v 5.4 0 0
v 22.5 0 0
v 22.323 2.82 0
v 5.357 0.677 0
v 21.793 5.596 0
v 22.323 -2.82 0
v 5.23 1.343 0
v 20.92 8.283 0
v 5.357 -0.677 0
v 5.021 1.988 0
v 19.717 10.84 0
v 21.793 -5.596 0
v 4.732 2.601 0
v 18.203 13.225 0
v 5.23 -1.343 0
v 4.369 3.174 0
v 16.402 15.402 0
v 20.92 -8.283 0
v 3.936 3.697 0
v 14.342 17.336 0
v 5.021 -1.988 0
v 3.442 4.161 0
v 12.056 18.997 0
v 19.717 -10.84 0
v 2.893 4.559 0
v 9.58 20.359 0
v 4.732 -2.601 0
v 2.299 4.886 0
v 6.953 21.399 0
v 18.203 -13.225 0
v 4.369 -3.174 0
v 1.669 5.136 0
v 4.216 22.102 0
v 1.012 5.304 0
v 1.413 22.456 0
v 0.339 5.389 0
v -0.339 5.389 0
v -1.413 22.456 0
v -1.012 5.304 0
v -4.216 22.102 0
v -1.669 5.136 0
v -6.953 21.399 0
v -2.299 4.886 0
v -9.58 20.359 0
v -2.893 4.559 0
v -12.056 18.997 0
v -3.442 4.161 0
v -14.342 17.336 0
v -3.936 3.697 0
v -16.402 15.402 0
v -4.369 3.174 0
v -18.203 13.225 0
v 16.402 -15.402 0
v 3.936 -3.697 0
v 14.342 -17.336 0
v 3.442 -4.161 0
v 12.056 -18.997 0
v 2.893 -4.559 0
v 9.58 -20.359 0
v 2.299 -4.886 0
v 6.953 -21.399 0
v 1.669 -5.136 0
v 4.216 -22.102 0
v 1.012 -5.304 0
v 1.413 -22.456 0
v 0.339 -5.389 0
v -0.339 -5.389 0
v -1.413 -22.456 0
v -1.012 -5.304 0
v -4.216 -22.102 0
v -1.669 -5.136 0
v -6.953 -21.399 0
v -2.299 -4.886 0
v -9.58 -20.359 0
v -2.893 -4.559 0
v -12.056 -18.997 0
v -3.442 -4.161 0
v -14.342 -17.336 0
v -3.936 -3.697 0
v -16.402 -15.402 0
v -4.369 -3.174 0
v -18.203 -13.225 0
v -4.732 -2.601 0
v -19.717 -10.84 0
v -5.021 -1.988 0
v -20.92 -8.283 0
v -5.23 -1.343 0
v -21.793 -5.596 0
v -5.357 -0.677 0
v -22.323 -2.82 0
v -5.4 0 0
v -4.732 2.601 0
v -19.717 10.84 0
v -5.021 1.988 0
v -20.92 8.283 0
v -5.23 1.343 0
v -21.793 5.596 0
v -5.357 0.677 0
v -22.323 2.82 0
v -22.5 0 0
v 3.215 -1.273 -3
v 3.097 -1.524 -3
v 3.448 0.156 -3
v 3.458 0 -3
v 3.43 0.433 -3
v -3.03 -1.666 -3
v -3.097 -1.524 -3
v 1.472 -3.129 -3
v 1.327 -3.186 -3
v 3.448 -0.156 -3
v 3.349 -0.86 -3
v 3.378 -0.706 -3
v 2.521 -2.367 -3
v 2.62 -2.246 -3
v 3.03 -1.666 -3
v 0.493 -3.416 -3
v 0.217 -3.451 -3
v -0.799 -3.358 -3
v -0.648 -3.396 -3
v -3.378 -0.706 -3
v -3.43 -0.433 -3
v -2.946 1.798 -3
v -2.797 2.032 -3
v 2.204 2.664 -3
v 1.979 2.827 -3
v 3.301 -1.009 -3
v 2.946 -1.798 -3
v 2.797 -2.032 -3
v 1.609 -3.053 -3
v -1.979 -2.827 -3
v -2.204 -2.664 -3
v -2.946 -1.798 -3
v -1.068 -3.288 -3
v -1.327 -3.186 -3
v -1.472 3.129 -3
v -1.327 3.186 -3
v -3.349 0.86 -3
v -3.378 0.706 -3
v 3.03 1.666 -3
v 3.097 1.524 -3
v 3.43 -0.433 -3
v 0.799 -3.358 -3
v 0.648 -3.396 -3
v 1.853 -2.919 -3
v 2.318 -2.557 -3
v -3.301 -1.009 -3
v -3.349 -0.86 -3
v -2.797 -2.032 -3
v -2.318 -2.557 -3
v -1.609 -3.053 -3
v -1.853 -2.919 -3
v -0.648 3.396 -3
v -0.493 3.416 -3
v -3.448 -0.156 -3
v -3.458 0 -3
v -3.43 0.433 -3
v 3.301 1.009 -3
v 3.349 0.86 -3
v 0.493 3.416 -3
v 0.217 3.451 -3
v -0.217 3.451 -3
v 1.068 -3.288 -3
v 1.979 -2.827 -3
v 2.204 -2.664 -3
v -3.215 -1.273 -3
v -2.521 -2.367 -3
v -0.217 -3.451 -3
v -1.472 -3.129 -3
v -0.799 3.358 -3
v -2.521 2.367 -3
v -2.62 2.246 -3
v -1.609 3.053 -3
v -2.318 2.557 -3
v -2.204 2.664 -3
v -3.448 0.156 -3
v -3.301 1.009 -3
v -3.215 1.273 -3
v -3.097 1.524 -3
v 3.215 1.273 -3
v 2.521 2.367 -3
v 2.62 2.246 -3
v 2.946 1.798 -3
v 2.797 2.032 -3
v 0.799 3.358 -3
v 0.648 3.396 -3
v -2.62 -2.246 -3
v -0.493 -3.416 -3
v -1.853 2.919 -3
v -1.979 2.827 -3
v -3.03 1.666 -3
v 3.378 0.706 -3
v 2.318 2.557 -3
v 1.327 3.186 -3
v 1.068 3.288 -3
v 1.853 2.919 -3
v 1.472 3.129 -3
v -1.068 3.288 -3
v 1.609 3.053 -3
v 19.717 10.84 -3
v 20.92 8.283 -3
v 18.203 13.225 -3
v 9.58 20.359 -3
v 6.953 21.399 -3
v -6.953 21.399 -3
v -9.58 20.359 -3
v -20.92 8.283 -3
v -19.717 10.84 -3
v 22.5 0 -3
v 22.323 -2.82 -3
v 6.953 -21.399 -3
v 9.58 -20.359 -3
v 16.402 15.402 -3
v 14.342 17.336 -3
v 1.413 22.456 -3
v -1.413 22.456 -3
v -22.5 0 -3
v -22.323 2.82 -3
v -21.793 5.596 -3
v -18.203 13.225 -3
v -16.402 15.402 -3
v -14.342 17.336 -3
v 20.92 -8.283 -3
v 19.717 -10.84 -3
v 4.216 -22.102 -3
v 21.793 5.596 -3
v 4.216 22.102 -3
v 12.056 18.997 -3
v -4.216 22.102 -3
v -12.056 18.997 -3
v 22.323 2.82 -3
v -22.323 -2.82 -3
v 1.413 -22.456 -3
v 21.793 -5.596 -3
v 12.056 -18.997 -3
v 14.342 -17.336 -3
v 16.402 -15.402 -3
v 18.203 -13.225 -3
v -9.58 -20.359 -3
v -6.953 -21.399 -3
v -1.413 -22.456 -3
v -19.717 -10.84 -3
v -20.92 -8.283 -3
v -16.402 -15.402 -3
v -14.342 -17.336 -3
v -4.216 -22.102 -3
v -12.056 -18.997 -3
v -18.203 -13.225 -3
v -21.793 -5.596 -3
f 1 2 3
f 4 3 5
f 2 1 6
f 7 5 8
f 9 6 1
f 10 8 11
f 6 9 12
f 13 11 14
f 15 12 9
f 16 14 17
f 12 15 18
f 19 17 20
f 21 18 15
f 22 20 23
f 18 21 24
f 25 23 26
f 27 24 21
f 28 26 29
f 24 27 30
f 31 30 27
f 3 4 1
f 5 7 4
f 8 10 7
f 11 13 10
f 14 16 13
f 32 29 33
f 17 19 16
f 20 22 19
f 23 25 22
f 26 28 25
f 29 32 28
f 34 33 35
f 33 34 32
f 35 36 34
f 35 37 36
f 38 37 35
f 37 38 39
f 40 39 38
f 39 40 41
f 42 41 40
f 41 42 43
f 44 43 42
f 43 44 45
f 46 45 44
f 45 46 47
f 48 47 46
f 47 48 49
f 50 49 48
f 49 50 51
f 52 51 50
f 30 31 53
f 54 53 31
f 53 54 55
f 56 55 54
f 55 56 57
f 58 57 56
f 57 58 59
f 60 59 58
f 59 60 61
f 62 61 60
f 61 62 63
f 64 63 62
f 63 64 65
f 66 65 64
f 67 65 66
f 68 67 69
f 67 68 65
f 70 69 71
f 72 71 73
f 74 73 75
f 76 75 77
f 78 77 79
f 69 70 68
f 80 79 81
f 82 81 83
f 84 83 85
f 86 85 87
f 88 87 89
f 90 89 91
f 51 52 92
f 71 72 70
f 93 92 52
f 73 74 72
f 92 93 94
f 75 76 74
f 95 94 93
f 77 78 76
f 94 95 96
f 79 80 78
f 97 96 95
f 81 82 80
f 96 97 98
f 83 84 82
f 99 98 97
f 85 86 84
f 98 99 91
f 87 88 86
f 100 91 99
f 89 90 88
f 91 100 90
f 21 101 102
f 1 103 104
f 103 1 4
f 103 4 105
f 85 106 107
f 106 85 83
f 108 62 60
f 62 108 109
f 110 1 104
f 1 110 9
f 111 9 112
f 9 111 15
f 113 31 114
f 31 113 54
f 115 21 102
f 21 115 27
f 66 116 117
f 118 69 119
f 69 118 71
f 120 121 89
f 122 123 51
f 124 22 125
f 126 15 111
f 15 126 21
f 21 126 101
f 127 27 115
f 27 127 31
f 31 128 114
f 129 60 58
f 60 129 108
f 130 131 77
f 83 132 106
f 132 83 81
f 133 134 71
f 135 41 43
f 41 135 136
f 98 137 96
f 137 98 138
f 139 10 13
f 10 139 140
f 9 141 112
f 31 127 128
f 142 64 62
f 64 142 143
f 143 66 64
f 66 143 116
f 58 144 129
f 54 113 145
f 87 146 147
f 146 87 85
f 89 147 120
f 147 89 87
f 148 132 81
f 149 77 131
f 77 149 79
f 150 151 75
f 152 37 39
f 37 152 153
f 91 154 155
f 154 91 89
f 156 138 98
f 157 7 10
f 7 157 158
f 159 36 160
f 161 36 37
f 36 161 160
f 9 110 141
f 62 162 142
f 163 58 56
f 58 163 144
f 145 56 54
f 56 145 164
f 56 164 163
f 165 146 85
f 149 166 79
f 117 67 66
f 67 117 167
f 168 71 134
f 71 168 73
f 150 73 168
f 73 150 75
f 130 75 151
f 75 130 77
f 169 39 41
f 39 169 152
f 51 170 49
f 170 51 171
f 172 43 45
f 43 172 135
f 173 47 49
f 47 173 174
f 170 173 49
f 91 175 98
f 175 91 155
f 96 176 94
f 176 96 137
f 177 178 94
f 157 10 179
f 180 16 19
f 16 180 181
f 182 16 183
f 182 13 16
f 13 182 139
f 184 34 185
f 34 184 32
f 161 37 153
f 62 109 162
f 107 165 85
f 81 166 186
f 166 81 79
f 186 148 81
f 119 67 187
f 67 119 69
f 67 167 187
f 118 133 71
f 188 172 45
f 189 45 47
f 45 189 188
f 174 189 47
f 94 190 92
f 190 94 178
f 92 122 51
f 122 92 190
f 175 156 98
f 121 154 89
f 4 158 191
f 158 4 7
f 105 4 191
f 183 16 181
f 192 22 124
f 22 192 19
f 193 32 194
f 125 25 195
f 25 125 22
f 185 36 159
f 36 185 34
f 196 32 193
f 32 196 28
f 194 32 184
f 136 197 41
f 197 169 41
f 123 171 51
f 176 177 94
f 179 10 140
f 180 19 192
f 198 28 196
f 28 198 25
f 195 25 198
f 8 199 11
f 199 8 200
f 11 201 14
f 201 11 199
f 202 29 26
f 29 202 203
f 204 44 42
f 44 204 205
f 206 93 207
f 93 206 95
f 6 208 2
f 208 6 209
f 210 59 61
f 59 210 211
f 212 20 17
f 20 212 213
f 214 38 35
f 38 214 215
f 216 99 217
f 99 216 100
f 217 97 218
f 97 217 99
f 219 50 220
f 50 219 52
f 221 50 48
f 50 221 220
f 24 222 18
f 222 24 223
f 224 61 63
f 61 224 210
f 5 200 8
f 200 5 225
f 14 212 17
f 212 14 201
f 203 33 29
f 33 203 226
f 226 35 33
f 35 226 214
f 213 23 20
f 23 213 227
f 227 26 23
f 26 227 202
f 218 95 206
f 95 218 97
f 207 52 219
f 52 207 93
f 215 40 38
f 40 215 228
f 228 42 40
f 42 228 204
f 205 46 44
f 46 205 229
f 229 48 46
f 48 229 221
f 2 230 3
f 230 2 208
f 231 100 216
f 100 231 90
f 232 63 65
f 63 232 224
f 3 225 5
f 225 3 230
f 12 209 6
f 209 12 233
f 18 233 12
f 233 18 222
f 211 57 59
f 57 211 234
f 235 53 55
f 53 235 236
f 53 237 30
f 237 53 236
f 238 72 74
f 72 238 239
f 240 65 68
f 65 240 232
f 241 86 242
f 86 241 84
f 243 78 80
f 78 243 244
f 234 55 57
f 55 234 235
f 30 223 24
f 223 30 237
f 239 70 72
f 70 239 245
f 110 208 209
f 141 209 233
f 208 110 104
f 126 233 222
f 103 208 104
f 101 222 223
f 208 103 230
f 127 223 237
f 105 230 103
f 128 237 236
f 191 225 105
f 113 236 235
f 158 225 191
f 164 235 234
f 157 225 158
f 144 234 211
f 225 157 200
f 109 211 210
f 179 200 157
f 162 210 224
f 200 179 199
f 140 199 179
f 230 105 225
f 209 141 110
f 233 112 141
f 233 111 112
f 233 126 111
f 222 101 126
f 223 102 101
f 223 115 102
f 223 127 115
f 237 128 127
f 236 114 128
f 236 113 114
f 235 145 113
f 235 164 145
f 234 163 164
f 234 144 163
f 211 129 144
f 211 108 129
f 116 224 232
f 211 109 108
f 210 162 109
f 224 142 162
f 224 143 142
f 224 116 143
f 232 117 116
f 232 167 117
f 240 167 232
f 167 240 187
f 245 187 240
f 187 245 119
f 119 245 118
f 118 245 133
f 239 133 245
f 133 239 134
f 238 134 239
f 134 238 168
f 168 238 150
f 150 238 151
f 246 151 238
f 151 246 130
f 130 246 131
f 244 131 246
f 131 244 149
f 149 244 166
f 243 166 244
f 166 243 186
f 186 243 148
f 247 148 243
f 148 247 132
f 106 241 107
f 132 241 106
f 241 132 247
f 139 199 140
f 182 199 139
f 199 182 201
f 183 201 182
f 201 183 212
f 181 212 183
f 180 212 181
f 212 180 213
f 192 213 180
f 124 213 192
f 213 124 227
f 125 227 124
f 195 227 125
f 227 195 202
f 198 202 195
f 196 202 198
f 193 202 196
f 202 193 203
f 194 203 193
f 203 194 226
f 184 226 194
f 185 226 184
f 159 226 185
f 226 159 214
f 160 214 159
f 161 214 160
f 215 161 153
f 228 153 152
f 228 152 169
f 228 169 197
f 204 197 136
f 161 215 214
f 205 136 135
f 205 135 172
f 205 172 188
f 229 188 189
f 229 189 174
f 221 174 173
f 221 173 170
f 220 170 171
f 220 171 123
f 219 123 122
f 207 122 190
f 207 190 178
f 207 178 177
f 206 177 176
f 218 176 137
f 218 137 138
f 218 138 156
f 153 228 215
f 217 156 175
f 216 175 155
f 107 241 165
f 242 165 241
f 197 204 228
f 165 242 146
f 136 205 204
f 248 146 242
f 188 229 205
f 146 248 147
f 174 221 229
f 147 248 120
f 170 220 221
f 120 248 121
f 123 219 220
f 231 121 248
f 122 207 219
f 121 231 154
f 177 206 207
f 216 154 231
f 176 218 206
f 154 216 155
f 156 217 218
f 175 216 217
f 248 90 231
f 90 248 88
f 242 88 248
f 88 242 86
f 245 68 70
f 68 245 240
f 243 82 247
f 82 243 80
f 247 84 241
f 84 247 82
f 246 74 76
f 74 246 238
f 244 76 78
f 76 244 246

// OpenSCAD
$fn = 50;


difference() {
	union() {
		translate(v = [0, 0, -3.0000000000]) {
			cylinder(h = 3, r = 22.5000000000);
		}
	}
	union() {
		translate(v = [0, 0, 0]) {
			rotate(a = [0, 0, 0]) {
				difference() {
					union() {
						translate(v = [0, 0, -6.0000000000]) {
							cylinder(h = 6, r = 2.6000000000);
						}
						translate(v = [0, 0, -3.9000000000]) {
							cylinder(h = 3.9000000000, r1 = 2.8750000000, r2 = 5.4000000000);
						}
						translate(v = [0, 0, -6.0000000000]) {
							cylinder(h = 6, r = 2.8750000000);
						}
						translate(v = [0, 0, -6.0000000000]) {
							cylinder(h = 6, r = 2.6000000000);
						}
					}
					union();
				}
			}
		}
	}
}
